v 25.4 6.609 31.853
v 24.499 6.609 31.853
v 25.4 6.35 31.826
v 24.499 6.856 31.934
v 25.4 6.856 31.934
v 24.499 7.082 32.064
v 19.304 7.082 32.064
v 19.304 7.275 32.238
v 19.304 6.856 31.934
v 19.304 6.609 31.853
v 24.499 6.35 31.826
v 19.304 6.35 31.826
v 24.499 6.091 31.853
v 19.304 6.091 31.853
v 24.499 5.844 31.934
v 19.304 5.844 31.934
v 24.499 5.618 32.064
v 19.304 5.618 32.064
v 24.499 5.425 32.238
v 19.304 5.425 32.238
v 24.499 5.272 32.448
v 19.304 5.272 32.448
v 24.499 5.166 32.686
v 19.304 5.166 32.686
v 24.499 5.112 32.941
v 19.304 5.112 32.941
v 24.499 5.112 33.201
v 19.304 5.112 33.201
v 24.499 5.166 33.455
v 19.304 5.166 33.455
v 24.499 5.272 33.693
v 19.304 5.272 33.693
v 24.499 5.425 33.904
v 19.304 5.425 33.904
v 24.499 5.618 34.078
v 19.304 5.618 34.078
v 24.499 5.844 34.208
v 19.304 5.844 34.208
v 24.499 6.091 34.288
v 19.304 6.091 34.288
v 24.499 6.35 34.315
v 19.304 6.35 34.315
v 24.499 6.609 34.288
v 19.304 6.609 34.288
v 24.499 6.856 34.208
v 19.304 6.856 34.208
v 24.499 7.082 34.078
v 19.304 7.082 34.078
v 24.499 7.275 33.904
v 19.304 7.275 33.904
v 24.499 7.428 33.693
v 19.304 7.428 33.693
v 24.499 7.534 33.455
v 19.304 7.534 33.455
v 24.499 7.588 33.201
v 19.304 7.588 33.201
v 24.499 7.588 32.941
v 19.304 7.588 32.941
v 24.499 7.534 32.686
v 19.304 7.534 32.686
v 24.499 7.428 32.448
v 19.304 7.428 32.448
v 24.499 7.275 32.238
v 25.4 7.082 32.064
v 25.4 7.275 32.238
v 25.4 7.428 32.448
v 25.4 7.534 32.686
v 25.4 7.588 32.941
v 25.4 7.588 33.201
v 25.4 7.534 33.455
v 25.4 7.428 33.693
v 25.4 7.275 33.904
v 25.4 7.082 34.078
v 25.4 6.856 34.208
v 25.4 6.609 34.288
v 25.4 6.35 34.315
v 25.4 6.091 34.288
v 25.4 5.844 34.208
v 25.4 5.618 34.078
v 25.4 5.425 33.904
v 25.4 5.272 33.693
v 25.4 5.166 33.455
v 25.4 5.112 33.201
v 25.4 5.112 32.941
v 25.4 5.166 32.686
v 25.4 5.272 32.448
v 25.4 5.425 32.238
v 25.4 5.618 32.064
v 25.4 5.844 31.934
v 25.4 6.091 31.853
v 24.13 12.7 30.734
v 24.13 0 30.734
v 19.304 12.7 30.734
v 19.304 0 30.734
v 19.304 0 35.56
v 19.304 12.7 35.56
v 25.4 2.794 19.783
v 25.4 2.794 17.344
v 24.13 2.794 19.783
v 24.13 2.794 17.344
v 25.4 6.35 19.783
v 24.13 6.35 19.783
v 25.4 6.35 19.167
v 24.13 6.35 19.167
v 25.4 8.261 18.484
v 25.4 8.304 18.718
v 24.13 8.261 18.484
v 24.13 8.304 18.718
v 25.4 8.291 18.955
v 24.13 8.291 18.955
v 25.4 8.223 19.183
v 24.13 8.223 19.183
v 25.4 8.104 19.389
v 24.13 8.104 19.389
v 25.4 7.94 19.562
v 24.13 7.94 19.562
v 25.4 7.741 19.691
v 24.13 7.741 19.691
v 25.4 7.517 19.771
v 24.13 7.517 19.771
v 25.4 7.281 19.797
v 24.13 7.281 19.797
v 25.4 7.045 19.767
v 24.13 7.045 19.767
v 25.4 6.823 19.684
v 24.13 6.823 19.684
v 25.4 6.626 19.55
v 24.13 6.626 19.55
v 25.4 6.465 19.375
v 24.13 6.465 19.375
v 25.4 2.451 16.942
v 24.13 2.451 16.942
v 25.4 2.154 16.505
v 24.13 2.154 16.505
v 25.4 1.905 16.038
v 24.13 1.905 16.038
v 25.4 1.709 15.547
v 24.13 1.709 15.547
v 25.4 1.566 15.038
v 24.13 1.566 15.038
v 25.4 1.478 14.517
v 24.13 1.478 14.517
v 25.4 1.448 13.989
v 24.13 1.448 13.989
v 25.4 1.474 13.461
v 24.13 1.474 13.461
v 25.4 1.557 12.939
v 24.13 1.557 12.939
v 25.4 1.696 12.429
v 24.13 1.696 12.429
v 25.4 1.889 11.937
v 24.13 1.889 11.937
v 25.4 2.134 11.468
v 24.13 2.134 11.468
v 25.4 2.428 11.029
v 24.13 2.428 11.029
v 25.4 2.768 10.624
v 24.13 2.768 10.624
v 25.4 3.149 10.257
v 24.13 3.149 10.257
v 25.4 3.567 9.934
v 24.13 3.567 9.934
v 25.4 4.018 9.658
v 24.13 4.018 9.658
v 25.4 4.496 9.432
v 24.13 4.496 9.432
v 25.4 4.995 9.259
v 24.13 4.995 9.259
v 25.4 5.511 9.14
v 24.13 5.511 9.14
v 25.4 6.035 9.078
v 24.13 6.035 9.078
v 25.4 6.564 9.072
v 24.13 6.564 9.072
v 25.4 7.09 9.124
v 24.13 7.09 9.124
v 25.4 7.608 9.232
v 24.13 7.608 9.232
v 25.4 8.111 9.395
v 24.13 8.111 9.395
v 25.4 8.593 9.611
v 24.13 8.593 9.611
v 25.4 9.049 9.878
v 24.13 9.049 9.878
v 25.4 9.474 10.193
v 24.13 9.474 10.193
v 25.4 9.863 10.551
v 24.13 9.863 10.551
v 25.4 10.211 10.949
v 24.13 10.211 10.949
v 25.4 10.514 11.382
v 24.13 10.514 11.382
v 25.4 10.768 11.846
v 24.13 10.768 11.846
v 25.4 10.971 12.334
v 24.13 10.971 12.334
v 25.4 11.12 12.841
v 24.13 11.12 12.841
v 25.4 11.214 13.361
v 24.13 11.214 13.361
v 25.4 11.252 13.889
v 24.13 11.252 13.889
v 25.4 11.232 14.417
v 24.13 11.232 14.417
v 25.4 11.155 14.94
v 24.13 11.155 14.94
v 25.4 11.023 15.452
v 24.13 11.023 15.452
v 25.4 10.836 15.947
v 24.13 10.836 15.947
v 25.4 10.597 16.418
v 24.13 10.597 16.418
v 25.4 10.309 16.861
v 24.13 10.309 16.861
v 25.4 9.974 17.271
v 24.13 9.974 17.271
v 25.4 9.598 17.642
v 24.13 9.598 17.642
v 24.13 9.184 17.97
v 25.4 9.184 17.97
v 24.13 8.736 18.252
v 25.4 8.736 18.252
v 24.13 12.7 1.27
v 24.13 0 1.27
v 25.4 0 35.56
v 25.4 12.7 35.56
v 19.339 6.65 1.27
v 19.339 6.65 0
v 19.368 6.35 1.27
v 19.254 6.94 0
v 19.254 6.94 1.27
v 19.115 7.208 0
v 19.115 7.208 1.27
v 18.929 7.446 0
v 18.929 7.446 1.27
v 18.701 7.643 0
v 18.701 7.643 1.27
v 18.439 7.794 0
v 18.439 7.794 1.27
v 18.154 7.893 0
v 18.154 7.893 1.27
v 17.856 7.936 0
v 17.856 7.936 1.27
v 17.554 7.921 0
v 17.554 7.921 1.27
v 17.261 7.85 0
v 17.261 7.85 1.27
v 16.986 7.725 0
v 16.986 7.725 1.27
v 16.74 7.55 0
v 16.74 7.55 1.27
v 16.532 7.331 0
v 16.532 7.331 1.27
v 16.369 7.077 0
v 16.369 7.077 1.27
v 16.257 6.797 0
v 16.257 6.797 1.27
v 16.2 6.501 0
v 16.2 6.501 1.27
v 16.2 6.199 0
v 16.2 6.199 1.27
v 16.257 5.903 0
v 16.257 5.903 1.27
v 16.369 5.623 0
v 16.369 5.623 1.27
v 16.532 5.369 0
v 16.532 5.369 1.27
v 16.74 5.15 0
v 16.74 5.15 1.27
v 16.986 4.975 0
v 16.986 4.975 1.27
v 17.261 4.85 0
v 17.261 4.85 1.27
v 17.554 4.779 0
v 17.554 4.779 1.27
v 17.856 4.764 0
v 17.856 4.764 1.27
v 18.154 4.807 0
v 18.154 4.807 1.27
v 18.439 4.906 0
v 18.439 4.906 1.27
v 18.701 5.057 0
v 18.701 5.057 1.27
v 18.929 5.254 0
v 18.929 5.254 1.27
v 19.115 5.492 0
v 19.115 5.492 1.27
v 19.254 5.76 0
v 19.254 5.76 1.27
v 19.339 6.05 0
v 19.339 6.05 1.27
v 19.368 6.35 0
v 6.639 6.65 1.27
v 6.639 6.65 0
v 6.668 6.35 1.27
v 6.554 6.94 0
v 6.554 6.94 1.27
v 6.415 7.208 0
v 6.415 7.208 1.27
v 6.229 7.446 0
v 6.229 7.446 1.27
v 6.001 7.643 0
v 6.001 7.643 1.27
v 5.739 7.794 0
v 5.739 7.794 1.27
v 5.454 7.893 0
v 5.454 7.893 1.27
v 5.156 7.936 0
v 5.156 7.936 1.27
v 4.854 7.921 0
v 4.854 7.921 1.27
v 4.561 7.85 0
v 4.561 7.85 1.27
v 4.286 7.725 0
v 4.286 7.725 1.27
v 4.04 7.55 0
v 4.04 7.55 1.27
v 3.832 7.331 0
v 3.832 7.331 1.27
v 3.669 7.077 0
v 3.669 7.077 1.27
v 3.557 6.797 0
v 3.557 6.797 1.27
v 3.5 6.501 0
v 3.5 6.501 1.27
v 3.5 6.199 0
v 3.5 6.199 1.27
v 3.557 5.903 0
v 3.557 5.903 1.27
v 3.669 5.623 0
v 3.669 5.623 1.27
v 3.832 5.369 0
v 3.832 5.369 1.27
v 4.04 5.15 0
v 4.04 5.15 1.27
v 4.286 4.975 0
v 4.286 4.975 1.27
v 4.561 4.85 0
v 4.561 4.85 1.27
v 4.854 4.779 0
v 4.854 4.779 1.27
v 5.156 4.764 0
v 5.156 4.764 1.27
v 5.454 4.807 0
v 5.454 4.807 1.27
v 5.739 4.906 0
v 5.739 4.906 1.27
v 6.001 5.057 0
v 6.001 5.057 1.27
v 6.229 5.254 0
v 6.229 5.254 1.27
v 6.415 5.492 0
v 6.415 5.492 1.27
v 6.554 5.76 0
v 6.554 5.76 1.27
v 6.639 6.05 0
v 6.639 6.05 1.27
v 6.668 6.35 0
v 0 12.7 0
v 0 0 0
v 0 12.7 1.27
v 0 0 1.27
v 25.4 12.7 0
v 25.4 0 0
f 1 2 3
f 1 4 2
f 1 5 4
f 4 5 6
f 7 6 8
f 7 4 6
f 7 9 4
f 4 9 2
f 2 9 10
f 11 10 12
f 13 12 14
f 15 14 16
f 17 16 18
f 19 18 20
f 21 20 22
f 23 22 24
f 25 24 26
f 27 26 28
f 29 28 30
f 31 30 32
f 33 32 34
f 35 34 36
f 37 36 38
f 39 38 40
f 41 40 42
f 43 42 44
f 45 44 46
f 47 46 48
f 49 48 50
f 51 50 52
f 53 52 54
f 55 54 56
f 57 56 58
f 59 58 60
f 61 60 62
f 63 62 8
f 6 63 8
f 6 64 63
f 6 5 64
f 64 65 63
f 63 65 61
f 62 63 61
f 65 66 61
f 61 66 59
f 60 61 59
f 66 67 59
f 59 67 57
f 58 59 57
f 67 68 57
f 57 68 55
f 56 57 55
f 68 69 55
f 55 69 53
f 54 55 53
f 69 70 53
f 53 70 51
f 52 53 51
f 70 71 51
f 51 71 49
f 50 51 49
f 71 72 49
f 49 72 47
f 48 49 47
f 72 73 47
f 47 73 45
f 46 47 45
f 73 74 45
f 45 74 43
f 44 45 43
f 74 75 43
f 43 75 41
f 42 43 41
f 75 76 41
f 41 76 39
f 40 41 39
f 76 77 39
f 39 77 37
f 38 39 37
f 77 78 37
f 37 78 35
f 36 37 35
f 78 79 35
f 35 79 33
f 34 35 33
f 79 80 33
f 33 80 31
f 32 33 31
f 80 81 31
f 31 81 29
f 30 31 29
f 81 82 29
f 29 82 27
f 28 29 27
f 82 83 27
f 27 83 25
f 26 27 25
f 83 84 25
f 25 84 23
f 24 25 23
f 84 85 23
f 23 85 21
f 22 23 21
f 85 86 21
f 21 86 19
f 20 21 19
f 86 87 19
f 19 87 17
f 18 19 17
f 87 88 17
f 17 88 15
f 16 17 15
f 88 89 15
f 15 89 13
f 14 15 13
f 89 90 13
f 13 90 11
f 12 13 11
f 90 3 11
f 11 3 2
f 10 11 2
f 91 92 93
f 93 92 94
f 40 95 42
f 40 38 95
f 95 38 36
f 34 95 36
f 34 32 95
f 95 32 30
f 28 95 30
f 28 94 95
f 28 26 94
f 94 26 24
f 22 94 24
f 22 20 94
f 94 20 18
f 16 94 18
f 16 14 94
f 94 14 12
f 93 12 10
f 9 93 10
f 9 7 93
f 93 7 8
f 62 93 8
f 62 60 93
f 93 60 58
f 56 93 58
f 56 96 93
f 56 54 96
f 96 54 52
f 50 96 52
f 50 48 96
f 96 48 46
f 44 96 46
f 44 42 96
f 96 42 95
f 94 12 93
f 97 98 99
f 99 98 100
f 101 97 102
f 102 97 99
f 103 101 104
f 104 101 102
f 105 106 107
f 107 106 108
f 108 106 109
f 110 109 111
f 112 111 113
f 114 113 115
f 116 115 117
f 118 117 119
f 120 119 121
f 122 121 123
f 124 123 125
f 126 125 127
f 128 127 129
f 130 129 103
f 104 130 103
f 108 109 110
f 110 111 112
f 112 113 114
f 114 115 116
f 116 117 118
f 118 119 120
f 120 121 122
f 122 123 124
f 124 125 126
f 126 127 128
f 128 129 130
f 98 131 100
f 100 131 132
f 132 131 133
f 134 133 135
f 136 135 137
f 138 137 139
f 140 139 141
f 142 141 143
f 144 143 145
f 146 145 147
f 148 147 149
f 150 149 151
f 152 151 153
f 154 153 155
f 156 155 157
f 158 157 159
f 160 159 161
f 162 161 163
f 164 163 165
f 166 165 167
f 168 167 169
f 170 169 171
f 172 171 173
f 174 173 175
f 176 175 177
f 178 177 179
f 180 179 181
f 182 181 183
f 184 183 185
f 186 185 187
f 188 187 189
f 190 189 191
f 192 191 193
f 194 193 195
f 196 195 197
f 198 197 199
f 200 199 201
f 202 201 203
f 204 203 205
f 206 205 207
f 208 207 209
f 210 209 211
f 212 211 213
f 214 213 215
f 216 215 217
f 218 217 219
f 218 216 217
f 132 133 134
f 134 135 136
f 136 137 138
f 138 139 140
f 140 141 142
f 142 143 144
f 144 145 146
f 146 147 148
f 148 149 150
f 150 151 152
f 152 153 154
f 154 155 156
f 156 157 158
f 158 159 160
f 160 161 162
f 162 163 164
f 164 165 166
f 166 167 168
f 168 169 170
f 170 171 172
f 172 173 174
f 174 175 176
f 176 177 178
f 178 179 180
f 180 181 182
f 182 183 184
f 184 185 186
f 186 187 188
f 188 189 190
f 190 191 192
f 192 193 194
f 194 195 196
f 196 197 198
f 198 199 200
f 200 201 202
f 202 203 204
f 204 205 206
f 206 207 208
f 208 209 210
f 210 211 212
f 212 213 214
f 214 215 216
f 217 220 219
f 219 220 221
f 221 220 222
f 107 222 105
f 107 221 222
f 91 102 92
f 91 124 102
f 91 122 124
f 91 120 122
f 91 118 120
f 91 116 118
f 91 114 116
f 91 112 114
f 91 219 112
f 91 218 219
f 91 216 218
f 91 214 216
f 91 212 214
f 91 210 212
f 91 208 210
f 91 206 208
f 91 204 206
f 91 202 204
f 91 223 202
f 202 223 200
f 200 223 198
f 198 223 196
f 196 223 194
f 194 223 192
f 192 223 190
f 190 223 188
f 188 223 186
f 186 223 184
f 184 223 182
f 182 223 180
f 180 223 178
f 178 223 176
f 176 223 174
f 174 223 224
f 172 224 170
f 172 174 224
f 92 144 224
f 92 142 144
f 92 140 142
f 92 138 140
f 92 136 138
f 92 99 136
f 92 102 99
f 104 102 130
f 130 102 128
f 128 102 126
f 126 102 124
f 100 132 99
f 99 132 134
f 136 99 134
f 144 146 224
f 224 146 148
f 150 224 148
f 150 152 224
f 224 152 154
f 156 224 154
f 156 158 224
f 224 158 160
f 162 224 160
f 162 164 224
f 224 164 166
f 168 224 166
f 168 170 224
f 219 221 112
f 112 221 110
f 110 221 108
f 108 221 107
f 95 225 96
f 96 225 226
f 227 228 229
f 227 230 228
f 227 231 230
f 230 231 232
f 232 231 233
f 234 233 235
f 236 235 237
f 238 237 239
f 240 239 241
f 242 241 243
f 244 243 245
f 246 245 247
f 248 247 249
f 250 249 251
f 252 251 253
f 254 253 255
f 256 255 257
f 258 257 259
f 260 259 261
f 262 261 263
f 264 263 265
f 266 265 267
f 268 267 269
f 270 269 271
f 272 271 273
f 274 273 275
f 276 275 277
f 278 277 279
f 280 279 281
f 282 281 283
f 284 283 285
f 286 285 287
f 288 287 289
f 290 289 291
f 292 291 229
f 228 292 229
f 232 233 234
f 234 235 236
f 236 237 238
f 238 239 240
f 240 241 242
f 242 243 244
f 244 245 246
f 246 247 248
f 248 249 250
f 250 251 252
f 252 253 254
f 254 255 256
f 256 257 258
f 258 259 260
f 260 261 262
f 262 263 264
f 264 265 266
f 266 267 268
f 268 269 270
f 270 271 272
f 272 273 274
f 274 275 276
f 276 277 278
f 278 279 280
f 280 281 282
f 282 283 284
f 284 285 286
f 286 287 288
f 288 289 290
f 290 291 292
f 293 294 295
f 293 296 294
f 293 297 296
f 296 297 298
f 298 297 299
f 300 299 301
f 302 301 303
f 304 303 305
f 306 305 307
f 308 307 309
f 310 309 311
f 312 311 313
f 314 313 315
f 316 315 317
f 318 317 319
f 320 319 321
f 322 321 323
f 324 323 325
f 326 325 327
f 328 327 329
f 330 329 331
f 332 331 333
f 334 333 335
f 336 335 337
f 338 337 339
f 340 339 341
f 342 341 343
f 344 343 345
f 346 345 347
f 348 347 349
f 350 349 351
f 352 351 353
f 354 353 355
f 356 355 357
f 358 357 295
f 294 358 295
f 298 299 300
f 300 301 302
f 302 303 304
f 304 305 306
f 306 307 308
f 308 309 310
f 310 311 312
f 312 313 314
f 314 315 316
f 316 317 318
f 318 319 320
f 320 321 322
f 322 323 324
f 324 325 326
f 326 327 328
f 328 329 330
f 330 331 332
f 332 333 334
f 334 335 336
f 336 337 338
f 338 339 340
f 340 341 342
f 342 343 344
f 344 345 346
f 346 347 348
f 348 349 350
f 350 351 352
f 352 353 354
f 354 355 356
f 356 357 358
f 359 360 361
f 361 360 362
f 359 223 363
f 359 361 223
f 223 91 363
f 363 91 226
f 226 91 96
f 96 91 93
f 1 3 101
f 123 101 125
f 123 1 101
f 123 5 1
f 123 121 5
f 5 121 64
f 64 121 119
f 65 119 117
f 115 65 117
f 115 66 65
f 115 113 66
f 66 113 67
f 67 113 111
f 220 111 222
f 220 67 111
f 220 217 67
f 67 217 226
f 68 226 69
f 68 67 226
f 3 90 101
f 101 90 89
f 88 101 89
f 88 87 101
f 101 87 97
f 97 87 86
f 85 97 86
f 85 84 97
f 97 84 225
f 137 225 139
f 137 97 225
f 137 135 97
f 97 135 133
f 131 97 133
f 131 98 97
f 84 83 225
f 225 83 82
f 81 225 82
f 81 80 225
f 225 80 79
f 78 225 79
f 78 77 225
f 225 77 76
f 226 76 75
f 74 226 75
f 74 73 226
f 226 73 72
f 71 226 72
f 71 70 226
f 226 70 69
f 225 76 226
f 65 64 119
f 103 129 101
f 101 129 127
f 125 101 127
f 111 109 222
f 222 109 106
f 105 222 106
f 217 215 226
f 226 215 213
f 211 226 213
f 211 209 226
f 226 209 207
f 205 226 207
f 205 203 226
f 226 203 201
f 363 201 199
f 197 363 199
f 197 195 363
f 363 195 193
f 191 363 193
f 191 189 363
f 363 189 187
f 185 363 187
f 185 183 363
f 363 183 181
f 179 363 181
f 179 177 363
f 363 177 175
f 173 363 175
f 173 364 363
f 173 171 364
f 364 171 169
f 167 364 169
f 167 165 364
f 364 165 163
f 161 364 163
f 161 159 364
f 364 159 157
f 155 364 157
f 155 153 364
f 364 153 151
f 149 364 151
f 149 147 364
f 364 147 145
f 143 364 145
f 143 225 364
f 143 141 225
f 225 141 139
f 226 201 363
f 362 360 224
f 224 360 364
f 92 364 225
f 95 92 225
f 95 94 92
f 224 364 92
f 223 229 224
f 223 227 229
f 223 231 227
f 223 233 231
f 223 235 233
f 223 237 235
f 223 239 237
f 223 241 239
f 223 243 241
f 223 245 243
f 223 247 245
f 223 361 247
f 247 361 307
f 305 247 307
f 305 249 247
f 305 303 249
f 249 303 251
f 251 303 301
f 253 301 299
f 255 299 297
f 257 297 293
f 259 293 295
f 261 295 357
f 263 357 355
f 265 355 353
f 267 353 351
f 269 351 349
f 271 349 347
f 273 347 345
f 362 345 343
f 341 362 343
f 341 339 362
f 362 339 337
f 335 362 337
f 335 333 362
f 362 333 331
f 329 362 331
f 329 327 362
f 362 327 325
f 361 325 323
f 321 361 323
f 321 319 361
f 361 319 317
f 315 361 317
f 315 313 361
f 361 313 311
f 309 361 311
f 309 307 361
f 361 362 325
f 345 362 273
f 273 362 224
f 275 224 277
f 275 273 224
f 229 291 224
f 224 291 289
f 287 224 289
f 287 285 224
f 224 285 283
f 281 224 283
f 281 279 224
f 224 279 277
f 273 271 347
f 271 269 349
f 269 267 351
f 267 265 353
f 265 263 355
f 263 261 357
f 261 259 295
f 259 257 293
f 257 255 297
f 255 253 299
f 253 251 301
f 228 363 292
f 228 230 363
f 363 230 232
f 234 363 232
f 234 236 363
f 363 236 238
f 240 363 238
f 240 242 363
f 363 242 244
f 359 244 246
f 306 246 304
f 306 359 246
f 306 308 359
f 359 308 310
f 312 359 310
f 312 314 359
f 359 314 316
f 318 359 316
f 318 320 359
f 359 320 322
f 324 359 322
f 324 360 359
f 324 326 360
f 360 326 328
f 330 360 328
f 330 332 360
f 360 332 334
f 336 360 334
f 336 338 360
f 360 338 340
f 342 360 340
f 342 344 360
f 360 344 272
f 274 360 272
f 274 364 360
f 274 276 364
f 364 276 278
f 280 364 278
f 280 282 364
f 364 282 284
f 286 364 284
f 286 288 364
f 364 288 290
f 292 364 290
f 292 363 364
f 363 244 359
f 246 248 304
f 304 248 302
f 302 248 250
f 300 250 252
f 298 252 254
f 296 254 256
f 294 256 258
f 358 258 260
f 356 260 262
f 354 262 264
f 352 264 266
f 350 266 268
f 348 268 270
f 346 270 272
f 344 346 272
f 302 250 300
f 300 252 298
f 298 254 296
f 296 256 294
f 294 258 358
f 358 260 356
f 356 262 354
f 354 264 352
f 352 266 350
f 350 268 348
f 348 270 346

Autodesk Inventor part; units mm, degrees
ref_plane "YZ Plane" through (0, 0, 0) normal (1, 0, 0) x (0, 1, 0)
ref_plane "XZ Plane" through (0, 0, 0) normal (0, 1, 0) x (-1, 0, 0)
ref_plane "XY Plane" through (0, 0, 0) normal (0, 0, 1) x (1, 0, 0)
sketch "Sketch1" plane through (0, 0, 0) normal (0, 0, 1) x (1, 0, 0)
  line L0 (0, 0) -> (25.4, 0)
  line L1 (25.4, 0) -> (25.4, 12.7)
  line L2 (25.4, 12.7) -> (0, 12.7)
  line L3 (0, 12.7) -> (0, 0)
  circle A0 centre (5.08, 6.35) radius 1.5875
  circle A1 centre (17.78, 6.35) radius 1.5875
  dimension "d0" = 12.7
  dimension "d1" = 25.4
  dimension "d2" = 3.175
  dimension "d3" = 3.175
  dimension "d4" = 6.35
  dimension "d5" = 5.08
  dimension "d6" = 12.7
extrude "Extrusion1" add sketch "Sketch1" along normal blind 1.27
sketch "Sketch2" plane through (0, 0, 1.27) normal (0, 0, 1) x (1, 0, 0)
  line L0 (25.4, 12.7) -> (0, 12.7) projected
  line L1 (25.4, 0) -> (24.13, 0)
  line L2 (24.13, 0) -> (24.13, 12.7)
  line L3 (24.13, 12.7) -> (25.4, 12.7)
  line L4 (25.4, 12.7) -> (25.4, 0)
  point P0 (0, 0)
  dimension "d9" = 1.27
extrude "Extrusion2" add sketch "Sketch2" along normal blind 34.29
sketch "Sketch3" plane through (24.13, 0, 1.27) normal (-1, 0, 0) x (0, 0, 1)
  line L0 (0, 12.7) -> (0, 0) projected
  line L1 (0, 12.7) -> (34.29, 12.7) projected
  arc A0 (17.2142, 8.2614) -> (16.0744, 2.794) centre (12.7, 6.35) ccw
  line L2 (17.6022, 6.35) -> (18.5128, 6.35)
  line L3 (18.5128, 6.35) -> (18.5128, 2.794)
  line L4 (18.5128, 2.794) -> (16.0744, 2.794)
  line L5 (16.0744, 2.794) -> (16.0744, 6.35)
  arc A1 (17.8973, 6.35) -> (17.2142, 8.2614) centre (17.5113, 7.2898) ccw
  point P0 (-1.27, 0)
  point P1 (17.2936, 6.35)
  dimension "d21" = 9.8044
  dimension "d22" = 12.7
  dimension "d23" = 6.35
  dimension "d24" = 3.556
  dimension "d25" = 2.4384
  dimension "d26" = 2.032
  dimension "d27" = 0.9398
  dimension "d28" = 3.556
extrude "Extrusion3" cut sketch "Sketch3" against normal blind 25.4
sketch "Sketch4" plane through (24.13, 0, 1.27) normal (-1, 0, 0) x (0, 0, 1)
  line L0 (34.29, 12.7) -> (29.464, 12.7)
  line L1 (29.464, 12.7) -> (29.464, 0)
  line L2 (29.464, 0) -> (34.29, 0)
  line L3 (34.29, 0) -> (34.29, 12.7)
  arc A0 (17.2142, 8.2614) -> (16.0744, 2.794) centre (12.7, 6.35) ccw projected
  line L4 (0, 0) -> (34.29, 0) projected
  point P0 (-1.27, 0)
  point P1 (31.877, 0)
  dimension "d29" = 16.764
extrude "Extrusion4" add sketch "Sketch4" along normal blind 4.826
sketch "Sketch5" plane through (19.304, 0, 1.27) normal (-1, 0, 0) x (0, 0, 1)
  line L0 (34.29, 12.7) -> (29.464, 12.7) projected
  line L1 (29.464, 12.7) -> (29.464, 0) projected
  line L2 (29.464, 0) -> (34.29, 0) projected
  line L3 (34.29, 0) -> (34.29, 12.7) projected
  point P0 (-1.27, 0)
  point P1 (31.8008, 6.35)
  dimension "d33" = 4.826
  dimension "d35" = 12.7
  dimension "d38" = 6.35
  dimension "d46" = 2.3368
hole "Hole1" at (19.304, 6.35, 33.0708) direction (1, 0, 0) diameter 2.4892 end through all
properties part number "000208"
